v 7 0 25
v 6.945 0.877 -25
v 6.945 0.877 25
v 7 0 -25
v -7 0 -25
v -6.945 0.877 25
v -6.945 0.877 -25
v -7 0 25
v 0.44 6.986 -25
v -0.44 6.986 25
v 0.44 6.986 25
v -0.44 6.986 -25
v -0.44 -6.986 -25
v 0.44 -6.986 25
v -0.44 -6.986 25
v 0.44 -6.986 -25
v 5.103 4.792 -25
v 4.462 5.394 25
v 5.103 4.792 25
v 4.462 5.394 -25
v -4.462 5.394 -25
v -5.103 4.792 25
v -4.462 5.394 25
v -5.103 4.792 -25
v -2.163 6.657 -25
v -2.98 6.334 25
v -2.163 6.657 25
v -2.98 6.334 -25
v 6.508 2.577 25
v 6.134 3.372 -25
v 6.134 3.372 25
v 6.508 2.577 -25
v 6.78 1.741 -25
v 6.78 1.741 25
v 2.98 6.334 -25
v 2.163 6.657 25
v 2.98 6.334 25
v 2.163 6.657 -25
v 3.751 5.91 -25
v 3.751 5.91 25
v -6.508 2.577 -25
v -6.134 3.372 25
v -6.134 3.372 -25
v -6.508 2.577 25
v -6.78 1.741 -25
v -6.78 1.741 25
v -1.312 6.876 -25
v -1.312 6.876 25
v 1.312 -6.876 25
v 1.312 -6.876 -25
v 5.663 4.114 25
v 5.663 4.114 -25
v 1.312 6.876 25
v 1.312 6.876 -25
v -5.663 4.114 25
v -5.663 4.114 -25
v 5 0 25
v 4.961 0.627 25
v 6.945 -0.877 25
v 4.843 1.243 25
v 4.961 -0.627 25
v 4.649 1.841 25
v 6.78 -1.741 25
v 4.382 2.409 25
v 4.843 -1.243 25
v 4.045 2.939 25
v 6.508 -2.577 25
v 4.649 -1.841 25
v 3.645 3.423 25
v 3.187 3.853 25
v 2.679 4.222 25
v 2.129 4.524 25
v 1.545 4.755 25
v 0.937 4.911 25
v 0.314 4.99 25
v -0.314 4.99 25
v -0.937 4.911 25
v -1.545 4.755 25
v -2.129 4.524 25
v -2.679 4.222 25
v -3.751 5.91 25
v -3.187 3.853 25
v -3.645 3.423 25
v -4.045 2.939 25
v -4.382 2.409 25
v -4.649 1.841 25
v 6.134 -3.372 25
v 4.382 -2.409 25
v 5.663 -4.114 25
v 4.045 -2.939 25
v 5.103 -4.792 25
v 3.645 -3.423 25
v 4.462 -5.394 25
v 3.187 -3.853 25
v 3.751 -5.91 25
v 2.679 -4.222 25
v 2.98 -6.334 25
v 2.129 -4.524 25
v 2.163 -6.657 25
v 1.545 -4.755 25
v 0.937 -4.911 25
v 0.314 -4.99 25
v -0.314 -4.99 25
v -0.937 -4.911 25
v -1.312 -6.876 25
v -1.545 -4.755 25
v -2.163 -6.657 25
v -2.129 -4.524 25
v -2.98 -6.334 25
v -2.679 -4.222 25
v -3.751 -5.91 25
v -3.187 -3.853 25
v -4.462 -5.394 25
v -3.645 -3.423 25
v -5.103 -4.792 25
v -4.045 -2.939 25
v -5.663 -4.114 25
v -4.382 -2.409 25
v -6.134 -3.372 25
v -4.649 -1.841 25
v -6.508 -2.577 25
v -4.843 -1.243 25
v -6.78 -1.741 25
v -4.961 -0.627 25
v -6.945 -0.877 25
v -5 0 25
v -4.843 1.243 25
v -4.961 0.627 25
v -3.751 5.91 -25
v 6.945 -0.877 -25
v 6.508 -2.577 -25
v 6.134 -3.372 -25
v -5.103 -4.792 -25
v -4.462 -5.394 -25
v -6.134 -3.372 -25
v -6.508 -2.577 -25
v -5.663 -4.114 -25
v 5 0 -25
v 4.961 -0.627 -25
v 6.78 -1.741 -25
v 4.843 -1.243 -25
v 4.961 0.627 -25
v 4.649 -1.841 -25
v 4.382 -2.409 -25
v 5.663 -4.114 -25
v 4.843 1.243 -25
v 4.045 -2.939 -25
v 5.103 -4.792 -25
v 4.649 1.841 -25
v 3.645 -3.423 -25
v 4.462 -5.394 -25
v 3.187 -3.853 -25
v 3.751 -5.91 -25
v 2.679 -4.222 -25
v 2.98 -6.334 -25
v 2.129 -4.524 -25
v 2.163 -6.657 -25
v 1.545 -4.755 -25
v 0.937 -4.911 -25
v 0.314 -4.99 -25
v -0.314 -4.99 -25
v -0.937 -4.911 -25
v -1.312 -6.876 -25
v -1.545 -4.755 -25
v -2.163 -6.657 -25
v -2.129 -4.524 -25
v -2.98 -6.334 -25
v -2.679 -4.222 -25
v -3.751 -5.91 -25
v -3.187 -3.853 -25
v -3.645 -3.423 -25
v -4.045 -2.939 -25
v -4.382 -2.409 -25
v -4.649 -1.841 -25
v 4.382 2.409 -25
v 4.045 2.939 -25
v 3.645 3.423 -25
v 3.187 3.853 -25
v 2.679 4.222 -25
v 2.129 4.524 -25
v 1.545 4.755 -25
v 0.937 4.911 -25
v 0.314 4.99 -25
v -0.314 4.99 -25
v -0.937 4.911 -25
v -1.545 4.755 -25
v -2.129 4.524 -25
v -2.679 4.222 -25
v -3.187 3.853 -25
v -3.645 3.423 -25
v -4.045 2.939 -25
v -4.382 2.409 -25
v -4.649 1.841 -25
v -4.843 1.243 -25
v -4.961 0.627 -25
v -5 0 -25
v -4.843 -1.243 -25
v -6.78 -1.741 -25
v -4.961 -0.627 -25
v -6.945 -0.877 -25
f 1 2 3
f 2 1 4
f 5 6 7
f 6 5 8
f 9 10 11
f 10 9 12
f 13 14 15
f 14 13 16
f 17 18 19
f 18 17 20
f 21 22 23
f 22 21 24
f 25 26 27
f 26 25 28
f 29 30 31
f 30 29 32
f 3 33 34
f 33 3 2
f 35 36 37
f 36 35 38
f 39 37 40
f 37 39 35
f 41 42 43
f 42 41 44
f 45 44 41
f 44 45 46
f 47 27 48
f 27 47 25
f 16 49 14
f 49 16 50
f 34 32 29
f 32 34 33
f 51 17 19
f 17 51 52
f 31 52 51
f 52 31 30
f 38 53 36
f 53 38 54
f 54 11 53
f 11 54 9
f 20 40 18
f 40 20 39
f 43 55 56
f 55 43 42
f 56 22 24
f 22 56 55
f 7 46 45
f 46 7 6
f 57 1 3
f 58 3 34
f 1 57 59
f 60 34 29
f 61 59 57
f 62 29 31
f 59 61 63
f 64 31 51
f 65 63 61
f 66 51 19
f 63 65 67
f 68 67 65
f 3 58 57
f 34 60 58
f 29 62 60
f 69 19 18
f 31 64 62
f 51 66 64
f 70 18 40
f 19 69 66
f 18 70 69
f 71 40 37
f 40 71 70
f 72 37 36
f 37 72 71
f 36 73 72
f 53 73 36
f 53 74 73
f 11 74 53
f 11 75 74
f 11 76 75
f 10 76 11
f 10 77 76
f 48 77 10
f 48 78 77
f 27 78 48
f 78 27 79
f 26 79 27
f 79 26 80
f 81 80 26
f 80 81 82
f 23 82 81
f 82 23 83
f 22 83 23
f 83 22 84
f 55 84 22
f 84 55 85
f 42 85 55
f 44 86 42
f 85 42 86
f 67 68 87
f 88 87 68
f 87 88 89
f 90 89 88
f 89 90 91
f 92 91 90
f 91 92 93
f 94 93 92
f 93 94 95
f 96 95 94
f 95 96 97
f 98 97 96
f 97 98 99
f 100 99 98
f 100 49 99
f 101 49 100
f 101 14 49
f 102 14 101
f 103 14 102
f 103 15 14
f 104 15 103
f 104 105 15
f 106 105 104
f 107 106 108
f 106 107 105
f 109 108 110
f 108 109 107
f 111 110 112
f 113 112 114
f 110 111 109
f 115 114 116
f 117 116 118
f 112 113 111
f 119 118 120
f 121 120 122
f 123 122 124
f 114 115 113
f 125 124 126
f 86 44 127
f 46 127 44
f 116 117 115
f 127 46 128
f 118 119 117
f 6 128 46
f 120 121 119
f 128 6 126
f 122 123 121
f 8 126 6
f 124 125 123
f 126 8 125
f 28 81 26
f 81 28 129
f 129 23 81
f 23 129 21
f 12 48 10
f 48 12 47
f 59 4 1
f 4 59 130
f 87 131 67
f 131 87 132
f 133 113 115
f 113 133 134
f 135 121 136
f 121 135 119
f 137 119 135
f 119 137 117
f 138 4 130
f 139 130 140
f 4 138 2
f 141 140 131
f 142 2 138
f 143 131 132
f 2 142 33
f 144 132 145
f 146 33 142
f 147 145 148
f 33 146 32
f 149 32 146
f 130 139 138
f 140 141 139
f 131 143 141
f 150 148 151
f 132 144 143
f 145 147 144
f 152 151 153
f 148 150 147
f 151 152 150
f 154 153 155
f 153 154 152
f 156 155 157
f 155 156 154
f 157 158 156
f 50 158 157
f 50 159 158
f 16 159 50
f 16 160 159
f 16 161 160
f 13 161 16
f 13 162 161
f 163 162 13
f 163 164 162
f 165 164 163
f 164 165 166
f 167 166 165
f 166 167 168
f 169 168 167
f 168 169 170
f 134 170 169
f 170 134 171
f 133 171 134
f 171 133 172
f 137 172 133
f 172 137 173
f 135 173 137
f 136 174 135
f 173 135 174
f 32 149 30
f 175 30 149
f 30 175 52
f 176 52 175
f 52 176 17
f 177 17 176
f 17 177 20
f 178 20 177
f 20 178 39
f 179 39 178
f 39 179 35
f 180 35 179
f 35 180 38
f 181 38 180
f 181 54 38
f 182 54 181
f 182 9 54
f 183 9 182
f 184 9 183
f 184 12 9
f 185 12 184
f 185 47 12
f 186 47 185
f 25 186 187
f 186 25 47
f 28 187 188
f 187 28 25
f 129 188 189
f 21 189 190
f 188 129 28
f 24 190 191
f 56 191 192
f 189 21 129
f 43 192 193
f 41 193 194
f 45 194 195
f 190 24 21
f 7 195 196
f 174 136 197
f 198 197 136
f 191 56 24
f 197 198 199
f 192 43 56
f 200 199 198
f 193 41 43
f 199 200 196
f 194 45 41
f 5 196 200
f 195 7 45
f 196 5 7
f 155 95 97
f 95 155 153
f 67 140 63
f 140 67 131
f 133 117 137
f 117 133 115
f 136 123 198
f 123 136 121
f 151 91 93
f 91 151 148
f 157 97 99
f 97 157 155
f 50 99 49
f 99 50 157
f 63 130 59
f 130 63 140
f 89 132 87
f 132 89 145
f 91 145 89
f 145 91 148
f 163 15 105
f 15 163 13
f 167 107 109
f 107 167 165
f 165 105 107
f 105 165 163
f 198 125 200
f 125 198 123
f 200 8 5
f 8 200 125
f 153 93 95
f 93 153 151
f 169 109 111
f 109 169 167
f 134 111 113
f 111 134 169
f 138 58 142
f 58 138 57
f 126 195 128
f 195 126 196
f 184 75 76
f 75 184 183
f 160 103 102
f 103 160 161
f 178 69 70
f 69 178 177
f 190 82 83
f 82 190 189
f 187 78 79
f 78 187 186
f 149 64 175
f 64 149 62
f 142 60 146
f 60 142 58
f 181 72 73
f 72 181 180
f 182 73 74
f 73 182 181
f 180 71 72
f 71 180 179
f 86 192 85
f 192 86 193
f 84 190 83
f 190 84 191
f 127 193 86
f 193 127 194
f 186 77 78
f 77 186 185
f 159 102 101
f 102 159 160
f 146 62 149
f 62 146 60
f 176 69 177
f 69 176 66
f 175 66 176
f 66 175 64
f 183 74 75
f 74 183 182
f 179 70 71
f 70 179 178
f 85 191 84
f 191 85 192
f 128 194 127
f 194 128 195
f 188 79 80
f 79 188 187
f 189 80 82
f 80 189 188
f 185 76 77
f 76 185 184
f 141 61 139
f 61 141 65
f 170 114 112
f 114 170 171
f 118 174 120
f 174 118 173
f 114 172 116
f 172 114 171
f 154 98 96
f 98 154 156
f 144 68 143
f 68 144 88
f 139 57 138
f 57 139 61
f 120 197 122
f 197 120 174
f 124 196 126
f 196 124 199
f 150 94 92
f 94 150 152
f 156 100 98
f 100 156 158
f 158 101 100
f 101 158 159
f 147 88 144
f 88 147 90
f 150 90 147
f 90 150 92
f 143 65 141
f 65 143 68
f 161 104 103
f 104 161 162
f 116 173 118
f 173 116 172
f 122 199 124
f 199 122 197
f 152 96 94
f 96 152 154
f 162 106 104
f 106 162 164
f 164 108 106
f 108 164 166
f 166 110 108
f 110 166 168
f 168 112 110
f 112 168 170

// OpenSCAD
$fn = 50;


difference() {
	union() {
		translate(v = [0, 0, -25.0000000000]) {
			cylinder(h = 50, r = 7.0000000000);
		}
	}
	union() {
		translate(v = [0, 0, -100.0000000000]) {
			cylinder(h = 200, r = 5);
		}
	}
}
